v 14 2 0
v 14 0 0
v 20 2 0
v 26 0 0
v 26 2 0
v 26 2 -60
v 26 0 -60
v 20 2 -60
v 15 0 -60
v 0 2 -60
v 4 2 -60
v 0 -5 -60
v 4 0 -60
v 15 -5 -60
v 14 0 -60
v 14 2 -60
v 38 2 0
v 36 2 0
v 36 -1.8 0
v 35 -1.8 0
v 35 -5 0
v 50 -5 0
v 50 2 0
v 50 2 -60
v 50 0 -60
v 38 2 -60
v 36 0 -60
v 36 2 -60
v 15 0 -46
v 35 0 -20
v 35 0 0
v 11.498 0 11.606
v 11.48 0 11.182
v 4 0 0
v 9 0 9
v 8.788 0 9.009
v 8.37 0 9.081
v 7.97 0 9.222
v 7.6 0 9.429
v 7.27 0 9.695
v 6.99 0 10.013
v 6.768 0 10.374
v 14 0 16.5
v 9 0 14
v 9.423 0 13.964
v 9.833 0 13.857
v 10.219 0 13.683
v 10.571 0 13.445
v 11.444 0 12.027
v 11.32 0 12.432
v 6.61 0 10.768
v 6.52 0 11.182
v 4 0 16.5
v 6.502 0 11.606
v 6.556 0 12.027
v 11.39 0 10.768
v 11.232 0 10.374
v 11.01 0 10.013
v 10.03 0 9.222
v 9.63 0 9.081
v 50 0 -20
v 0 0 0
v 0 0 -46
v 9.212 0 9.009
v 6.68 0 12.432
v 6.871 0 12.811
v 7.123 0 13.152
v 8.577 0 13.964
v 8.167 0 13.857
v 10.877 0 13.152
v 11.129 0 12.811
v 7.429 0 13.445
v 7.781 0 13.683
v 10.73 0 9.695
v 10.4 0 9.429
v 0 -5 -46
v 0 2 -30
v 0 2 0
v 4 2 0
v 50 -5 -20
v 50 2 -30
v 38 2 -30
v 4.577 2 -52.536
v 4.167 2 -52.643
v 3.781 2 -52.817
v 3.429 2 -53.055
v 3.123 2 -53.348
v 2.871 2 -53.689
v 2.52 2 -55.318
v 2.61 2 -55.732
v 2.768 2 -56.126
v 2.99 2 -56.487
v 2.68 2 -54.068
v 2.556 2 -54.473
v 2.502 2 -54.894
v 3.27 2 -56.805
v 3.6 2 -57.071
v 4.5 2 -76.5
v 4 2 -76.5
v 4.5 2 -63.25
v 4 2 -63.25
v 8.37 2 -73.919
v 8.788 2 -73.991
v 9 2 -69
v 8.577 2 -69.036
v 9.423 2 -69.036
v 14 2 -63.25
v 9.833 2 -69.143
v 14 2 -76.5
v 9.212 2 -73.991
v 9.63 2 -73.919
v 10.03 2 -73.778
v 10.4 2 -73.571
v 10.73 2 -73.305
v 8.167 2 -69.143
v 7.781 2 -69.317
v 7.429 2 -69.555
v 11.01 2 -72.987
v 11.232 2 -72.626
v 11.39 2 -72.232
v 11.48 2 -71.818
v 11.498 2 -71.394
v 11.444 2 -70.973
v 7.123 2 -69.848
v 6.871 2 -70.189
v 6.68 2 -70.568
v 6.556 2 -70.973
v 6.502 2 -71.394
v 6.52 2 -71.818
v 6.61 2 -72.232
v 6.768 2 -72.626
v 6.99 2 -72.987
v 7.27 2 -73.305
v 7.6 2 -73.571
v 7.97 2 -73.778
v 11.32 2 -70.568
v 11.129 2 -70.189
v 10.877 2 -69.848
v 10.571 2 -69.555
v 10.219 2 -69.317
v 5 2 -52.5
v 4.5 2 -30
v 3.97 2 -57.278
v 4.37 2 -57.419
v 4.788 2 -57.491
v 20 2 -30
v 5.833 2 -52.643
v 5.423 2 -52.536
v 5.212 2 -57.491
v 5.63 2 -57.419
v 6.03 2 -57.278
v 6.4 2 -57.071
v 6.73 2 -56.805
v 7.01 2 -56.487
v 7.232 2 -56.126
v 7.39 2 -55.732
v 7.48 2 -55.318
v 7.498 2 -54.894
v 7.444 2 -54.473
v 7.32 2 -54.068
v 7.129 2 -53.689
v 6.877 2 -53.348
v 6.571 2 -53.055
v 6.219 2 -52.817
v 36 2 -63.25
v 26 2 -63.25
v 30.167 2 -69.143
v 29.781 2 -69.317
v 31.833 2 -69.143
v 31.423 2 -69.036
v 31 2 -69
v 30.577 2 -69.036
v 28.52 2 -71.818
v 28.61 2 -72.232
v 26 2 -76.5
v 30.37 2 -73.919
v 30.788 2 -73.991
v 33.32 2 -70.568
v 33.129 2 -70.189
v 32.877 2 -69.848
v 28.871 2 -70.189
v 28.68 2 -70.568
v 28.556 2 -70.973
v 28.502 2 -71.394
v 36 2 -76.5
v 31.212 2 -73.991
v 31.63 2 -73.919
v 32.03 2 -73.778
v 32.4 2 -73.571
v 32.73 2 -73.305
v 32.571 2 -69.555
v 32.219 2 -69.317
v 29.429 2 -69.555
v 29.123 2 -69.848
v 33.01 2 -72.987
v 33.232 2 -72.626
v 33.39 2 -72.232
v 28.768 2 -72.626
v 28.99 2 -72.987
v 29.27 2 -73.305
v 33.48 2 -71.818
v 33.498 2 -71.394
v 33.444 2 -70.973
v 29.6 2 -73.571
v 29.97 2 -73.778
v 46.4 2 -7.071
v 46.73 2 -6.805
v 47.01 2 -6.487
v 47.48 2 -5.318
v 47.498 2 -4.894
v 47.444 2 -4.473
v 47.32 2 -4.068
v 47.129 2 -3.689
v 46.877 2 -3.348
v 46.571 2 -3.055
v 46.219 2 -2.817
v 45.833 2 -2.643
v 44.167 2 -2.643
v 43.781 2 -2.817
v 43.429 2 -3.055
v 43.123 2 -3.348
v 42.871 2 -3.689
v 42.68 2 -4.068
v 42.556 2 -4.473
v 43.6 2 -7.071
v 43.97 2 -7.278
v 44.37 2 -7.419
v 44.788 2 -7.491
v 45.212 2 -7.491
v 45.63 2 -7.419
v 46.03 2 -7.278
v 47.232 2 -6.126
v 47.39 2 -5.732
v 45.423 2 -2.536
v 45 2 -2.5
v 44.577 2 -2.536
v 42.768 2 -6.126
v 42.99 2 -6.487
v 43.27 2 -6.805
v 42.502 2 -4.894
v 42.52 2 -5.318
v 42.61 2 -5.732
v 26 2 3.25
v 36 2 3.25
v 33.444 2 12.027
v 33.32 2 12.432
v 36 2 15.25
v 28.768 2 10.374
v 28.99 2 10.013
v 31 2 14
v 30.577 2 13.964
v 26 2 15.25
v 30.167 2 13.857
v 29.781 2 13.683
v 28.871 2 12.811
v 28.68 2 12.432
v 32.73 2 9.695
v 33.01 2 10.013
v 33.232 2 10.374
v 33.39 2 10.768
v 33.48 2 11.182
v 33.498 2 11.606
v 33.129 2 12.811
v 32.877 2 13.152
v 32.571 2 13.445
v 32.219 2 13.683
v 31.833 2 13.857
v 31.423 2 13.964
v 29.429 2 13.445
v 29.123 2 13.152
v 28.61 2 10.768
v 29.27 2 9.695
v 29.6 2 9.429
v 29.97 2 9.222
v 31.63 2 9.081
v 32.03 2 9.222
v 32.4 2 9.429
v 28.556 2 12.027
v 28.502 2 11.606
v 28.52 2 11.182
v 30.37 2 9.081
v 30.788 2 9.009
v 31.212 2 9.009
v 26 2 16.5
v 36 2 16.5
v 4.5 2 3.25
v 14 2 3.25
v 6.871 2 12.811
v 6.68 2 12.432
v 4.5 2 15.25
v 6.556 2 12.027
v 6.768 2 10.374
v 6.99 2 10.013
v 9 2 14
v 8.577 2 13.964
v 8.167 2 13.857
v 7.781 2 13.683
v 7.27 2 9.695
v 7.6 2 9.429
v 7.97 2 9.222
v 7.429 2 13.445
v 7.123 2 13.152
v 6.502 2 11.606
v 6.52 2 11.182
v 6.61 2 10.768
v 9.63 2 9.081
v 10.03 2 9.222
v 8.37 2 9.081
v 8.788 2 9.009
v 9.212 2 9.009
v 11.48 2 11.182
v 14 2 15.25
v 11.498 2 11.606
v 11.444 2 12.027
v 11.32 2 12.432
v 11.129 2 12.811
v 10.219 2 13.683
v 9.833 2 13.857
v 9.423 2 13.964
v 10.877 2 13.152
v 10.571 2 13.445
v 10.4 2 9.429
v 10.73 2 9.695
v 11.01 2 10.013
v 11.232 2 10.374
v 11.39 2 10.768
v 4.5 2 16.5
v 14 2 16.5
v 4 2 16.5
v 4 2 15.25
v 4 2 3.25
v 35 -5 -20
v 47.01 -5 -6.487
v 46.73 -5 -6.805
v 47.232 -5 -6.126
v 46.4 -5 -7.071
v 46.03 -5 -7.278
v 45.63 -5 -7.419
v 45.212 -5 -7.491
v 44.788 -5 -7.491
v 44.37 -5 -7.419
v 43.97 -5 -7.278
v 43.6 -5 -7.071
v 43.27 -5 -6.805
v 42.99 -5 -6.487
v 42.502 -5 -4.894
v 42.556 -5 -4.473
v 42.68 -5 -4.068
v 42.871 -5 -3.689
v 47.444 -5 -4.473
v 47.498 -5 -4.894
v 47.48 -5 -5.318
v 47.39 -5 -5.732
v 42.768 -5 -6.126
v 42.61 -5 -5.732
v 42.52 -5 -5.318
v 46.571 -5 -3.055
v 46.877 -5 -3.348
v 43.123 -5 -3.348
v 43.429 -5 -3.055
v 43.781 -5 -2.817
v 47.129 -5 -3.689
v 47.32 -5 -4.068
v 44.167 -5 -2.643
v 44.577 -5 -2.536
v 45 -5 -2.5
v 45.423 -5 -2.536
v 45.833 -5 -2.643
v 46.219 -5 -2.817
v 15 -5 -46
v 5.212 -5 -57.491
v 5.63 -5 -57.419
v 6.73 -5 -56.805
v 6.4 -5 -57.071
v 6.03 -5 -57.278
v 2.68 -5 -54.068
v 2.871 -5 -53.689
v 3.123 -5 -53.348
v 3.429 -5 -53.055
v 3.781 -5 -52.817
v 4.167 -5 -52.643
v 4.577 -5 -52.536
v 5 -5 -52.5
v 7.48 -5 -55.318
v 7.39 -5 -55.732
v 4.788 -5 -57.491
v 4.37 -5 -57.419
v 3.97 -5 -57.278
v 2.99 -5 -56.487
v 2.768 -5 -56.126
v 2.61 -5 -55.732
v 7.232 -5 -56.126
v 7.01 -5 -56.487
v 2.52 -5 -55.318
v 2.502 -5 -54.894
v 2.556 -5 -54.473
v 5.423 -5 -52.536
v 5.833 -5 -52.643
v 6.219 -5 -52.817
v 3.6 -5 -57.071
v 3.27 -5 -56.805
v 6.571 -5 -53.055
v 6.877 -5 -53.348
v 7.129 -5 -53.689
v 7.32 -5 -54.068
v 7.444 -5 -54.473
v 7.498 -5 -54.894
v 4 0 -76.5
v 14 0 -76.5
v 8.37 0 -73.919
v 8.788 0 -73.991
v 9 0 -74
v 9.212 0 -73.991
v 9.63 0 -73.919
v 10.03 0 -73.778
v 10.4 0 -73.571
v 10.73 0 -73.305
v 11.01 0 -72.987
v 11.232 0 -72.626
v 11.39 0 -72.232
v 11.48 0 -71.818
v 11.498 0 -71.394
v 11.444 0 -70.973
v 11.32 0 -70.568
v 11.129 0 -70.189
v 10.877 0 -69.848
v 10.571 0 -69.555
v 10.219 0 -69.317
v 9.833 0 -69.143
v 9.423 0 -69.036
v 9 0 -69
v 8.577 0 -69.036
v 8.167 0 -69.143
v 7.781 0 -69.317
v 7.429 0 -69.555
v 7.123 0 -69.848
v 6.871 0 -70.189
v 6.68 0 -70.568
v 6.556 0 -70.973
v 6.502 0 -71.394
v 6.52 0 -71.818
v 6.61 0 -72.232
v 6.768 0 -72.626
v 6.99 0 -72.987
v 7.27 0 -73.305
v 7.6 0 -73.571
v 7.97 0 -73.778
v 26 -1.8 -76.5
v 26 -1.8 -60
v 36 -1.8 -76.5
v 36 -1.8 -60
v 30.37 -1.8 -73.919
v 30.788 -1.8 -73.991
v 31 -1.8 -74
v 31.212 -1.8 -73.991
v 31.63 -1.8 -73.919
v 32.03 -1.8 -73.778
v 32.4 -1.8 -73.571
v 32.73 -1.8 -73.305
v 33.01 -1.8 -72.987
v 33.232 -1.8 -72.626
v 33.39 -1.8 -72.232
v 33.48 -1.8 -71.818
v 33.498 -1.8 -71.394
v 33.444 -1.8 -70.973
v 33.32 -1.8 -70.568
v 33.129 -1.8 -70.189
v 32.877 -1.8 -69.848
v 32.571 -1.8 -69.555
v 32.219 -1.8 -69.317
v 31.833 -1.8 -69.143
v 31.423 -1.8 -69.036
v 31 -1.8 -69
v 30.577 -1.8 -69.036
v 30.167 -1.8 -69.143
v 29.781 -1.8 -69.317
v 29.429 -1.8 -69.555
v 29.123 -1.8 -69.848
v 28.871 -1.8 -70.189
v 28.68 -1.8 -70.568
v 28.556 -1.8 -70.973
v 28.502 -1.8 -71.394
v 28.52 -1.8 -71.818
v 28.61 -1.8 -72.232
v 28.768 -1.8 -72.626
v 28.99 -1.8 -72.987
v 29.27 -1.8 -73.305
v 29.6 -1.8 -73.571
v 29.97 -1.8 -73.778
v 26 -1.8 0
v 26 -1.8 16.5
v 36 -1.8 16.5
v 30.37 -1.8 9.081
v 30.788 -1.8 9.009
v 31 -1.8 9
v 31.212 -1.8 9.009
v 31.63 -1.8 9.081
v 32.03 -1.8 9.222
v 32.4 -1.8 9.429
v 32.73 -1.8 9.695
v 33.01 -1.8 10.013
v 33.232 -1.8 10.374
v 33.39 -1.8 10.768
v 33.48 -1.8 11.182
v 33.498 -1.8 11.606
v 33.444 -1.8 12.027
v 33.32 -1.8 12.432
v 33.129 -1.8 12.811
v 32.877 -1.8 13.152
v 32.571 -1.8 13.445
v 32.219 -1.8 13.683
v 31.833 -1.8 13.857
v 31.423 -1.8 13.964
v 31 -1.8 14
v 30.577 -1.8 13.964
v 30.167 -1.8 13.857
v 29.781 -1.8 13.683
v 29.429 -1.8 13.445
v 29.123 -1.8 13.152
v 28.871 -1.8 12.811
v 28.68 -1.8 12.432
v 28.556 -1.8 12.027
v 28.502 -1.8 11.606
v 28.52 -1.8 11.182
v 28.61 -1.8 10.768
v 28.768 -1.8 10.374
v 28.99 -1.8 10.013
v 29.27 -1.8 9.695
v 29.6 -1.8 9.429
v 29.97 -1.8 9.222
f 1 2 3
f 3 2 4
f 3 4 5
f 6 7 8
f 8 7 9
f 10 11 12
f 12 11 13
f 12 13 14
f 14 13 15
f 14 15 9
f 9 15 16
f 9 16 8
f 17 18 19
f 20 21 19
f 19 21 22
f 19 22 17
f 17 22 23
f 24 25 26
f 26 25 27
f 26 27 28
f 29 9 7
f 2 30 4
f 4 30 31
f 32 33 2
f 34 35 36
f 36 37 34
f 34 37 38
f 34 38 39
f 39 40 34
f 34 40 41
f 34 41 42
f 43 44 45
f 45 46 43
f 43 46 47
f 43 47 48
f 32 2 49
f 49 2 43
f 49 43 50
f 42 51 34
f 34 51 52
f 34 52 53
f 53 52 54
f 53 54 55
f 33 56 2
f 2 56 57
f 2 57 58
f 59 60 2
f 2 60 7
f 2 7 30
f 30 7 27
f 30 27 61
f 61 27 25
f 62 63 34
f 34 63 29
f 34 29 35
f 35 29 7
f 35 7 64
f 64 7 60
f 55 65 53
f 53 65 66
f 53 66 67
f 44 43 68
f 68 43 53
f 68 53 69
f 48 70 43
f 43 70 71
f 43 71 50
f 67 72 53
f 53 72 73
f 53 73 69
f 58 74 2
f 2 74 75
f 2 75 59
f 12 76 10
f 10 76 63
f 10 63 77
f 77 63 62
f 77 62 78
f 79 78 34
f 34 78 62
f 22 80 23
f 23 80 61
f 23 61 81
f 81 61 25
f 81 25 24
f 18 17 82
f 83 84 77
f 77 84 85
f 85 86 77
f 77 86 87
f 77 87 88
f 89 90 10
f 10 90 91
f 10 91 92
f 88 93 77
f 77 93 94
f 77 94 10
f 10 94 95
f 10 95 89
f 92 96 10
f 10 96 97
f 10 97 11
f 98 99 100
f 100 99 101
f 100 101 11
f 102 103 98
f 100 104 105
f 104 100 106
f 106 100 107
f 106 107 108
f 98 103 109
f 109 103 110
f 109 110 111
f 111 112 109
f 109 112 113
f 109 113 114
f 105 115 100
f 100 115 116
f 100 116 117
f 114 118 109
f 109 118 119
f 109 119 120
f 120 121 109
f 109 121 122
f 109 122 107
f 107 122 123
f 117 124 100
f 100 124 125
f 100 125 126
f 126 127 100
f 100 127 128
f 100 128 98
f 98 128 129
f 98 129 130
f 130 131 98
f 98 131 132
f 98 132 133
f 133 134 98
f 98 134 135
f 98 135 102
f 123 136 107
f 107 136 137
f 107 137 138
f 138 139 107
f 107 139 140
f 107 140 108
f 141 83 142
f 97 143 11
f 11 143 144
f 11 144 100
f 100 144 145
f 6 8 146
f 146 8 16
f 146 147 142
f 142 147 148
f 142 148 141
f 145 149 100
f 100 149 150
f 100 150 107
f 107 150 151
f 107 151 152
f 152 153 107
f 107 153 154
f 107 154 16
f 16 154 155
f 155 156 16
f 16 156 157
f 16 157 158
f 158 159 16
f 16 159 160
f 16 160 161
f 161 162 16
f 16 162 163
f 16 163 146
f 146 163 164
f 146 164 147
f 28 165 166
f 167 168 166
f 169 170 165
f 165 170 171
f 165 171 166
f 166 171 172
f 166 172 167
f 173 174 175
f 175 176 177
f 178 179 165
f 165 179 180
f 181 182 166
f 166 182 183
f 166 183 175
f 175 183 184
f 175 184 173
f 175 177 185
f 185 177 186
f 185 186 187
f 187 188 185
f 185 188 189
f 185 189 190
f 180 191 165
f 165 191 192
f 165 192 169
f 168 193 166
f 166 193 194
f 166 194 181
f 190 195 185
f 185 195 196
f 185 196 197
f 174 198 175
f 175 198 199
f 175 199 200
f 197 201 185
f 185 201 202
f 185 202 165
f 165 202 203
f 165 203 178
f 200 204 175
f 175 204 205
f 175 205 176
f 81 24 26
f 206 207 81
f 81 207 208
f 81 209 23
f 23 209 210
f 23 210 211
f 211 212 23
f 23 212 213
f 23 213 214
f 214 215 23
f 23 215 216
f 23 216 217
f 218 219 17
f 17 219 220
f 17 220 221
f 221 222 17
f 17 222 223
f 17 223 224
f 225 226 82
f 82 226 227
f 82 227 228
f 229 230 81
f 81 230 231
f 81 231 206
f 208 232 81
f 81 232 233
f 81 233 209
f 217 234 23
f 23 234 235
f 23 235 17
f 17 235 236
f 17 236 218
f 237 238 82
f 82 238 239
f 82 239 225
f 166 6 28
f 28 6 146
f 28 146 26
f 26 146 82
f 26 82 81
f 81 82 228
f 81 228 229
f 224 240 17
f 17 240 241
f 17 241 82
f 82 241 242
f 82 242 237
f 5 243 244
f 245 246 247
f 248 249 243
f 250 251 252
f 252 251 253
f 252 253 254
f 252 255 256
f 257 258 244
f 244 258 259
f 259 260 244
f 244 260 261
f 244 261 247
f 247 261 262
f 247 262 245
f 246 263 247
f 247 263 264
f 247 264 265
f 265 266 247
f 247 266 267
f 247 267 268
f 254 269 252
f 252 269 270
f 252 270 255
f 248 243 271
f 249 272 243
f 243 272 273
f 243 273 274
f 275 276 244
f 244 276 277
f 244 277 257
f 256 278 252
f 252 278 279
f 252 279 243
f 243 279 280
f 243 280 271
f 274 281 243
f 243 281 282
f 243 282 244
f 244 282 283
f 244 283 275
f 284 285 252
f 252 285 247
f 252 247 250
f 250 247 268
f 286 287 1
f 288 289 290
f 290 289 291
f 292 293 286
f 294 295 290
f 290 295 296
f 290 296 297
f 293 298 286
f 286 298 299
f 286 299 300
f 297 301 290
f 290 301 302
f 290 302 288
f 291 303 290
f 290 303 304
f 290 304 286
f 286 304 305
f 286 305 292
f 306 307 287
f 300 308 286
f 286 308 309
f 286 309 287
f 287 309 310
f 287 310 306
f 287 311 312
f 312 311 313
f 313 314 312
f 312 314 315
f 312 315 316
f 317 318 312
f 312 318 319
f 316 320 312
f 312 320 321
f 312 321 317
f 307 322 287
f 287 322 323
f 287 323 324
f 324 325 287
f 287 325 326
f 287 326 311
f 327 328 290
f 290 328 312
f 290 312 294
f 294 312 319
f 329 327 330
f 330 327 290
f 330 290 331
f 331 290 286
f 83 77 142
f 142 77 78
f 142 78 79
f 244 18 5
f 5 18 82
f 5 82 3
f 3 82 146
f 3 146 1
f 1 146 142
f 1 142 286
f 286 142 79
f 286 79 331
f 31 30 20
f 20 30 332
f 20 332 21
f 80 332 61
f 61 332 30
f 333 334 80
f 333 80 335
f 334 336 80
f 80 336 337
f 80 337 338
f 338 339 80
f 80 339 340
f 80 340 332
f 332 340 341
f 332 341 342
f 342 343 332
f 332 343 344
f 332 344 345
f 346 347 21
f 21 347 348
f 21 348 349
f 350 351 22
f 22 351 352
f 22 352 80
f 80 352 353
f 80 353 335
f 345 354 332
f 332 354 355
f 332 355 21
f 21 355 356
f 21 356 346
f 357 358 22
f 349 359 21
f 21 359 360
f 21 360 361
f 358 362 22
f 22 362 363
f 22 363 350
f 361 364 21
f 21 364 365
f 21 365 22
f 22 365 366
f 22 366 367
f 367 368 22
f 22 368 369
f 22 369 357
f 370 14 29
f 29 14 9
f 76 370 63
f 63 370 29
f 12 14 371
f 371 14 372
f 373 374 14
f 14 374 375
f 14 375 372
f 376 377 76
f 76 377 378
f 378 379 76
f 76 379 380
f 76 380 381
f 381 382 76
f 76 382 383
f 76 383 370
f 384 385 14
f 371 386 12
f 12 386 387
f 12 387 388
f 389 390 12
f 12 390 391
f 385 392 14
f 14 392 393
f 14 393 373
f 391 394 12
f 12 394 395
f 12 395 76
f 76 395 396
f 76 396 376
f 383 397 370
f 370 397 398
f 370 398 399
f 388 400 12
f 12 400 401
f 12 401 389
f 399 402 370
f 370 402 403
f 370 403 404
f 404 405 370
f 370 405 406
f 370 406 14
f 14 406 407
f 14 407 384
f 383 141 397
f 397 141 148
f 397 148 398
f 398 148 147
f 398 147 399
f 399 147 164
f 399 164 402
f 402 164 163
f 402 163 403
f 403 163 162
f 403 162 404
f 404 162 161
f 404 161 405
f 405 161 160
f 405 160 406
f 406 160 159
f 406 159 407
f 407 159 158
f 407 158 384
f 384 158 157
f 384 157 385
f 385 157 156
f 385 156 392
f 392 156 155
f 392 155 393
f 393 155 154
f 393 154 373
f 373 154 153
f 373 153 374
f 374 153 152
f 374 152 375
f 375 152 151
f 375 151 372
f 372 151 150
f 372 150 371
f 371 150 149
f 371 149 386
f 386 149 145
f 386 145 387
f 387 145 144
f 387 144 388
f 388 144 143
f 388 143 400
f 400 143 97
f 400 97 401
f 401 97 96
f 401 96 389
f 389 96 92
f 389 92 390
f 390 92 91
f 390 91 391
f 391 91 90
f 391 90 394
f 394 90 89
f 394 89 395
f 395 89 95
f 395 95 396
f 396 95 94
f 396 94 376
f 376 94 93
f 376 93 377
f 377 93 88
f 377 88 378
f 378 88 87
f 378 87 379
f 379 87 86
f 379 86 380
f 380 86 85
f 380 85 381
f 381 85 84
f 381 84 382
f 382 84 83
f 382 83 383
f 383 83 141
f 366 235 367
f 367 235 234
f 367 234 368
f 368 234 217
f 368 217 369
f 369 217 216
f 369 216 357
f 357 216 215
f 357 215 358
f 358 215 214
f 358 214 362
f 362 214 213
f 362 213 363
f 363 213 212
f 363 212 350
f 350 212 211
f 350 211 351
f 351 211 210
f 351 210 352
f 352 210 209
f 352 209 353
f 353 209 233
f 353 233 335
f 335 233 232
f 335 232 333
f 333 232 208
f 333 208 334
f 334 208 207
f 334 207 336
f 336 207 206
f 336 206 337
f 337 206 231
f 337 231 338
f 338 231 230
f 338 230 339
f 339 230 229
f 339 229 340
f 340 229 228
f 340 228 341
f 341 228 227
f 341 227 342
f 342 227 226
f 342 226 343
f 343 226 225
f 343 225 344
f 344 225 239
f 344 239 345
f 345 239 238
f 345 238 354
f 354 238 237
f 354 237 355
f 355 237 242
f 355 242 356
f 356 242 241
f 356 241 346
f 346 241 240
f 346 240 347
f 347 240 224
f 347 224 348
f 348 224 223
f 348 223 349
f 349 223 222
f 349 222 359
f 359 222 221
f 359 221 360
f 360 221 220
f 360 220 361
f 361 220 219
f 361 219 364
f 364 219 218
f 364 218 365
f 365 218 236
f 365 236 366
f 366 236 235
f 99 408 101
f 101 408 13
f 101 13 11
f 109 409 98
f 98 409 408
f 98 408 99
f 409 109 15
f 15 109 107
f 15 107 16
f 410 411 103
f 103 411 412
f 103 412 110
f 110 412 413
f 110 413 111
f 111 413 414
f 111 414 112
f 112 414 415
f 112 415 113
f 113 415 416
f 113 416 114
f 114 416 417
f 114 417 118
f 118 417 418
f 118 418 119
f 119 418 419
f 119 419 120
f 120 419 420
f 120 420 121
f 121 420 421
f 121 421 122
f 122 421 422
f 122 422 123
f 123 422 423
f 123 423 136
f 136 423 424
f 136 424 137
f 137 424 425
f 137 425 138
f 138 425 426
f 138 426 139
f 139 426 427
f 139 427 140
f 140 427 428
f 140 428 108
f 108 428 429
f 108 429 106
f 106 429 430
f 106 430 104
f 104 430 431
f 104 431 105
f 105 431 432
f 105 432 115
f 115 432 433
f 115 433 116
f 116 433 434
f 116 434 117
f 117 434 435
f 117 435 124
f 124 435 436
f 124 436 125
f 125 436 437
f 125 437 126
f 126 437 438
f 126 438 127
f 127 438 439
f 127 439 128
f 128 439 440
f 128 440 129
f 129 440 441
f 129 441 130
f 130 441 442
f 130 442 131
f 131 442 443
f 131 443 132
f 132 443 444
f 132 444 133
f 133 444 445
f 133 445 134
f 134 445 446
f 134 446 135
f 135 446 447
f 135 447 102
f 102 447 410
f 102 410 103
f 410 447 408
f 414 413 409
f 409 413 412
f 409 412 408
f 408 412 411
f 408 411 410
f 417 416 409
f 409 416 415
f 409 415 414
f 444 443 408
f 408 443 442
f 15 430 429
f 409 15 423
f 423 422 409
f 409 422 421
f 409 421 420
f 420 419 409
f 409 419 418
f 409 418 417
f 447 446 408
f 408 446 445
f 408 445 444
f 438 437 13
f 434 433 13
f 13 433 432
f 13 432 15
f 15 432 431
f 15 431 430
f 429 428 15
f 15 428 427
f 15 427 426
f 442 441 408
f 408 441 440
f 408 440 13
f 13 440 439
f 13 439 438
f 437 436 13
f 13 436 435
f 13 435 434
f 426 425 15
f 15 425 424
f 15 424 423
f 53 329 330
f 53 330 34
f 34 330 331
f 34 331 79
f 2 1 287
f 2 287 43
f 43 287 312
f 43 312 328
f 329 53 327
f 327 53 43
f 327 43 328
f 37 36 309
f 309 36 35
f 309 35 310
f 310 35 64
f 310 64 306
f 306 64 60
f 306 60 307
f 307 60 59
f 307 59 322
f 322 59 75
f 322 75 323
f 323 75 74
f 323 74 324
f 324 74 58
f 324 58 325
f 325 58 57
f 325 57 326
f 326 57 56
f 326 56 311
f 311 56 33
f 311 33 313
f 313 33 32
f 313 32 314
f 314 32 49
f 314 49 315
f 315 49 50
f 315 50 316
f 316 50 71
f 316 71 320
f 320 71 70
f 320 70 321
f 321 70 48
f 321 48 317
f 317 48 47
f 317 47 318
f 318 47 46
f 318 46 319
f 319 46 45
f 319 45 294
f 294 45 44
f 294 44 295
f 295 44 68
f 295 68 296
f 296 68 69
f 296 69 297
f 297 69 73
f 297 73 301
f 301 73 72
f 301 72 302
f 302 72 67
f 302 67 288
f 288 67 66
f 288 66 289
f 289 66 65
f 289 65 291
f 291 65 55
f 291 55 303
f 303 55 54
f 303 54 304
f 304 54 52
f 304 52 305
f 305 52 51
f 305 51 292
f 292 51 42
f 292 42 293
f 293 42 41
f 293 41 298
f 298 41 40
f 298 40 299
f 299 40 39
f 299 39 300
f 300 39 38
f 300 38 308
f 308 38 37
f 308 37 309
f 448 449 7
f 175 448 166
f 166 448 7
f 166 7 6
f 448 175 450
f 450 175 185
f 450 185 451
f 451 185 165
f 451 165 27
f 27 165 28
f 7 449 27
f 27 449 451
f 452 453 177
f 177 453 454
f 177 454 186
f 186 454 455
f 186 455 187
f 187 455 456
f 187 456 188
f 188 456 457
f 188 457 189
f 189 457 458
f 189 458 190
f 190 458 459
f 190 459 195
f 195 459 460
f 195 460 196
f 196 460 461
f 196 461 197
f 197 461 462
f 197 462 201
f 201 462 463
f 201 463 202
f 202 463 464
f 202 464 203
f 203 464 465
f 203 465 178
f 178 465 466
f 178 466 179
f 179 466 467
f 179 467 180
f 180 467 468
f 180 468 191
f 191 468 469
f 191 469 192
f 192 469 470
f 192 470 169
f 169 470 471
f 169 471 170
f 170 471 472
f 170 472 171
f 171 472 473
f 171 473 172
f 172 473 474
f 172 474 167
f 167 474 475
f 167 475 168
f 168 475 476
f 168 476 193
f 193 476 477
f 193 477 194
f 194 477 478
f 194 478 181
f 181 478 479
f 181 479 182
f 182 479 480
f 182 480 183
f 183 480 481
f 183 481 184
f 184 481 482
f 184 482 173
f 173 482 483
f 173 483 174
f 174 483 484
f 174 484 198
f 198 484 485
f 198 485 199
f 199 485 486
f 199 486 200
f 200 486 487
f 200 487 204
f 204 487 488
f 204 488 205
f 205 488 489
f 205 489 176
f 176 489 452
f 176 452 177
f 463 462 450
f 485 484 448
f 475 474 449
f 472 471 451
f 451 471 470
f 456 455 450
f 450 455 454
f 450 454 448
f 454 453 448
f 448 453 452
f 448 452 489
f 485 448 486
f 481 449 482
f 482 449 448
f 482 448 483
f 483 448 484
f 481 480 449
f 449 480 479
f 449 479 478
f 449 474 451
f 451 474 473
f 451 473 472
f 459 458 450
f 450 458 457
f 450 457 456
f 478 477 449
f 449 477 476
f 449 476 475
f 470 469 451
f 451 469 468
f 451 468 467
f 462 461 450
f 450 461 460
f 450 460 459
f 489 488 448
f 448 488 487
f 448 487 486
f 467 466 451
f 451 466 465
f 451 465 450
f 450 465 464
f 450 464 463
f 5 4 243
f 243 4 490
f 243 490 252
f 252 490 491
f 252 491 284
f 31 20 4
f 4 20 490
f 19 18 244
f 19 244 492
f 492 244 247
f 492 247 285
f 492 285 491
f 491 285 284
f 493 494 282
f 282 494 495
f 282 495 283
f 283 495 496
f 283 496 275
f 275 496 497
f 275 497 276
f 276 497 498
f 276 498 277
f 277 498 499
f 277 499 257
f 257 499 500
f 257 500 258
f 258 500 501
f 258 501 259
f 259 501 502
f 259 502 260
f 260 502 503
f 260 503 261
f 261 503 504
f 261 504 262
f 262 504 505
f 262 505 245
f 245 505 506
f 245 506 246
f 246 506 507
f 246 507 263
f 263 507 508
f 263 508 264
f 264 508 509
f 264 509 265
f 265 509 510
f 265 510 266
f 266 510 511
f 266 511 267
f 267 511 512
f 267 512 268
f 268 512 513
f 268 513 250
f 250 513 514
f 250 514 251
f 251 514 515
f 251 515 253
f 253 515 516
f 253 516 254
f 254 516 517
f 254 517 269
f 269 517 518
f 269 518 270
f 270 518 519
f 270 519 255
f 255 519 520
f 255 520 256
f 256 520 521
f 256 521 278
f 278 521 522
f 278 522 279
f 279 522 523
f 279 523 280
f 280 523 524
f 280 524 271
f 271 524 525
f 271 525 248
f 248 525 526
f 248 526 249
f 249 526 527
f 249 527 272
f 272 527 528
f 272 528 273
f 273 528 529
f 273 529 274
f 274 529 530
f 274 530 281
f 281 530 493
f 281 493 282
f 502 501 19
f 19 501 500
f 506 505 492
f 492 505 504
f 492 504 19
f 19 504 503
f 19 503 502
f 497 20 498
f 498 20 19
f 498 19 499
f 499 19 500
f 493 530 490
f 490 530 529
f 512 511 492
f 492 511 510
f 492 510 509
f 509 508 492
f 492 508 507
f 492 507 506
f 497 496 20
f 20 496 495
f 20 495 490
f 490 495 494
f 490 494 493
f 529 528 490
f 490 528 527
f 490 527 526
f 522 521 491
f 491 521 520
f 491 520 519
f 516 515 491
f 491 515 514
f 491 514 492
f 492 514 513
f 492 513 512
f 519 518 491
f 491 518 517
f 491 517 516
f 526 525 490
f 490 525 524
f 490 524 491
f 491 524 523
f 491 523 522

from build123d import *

# Parameters (mm, degrees)
SKETCH1_W           = 50
SKETCH1_H           = 60
BOSS_EXTRUDE1_DEPTH = 2
SKETCH2_W           = 15
SKETCH2_H           = 20
SKETCH2_H_2         = 14
BOSS_EXTRUDE2_DEPTH = 5
SKETCH3_R           = 2.5
CUT_EXTRUDE1_DEPTH  = 7
SKETCH4_W           = 10
SKETCH4_H           = 16.5
SKETCH4_R           = 2.5
BOSS_EXTRUDE3_DEPTH = 2
SKETCH5_W           = 10
SKETCH5_H           = 16.5
SKETCH5_R           = 2.5
BOSS_EXTRUDE5_DEPTH = 3.8


with BuildPart() as part:
    # Sketch1 → Boss-Extrude1 (new body)
    with BuildSketch(Plane(origin=(0, 0, 0), x_dir=(1, 0, 0), z_dir=(0, 1, 0))):
        with Locations((25, 30)):
            Rectangle(SKETCH1_W, SKETCH1_H)
    extrude(amount=BOSS_EXTRUDE1_DEPTH)

    # Sketch2 → Boss-Extrude2 (add)
    with BuildSketch(Plane.XZ):
        with Locations((42.5, -10)):
            Rectangle(SKETCH2_W, SKETCH2_H)
        with Locations((7.5, -53)):
            Rectangle(SKETCH2_W, SKETCH2_H_2)
    extrude(amount=BOSS_EXTRUDE2_DEPTH)

    # Sketch3 → Cut-Extrude1 (cut)
    with BuildSketch(Plane(origin=(0, 2, 0), x_dir=(1, 0, 0), z_dir=(0, 1, 0))):
        with Locations(Location((45, 5, 0), (0, 0, 270))):
            Circle(SKETCH3_R)
        with Locations(Location((5, 55, 0), (0, 0, 270))):
            Circle(SKETCH3_R)
    extrude(amount=-CUT_EXTRUDE1_DEPTH, mode=Mode.SUBTRACT)

    # Sketch4 → Boss-Extrude3 (add)
    # profile 1 of 2: a face of its own
    with BuildSketch(Plane(origin=(0, 2, 0), x_dir=(1, 0, 0), z_dir=(0, 1, 0))):
        with Locations((9, 68.25)):
            Rectangle(SKETCH4_W, SKETCH4_H)
        with Locations(Location((9, 71.5, 0), (0, 0, 270))):
            Circle(SKETCH4_R, mode=Mode.SUBTRACT)
    # profile 2 of 2: a face of its own
    with BuildSketch(Plane(origin=(0, 2, 0), x_dir=(1, 0, 0), z_dir=(0, 1, 0))):
        with Locations((9, -8.25)):
            Rectangle(SKETCH4_W, SKETCH4_H)
        with Locations(Location((9, -11.5, 0), (0, 0, 270))):
            Circle(SKETCH4_R, mode=Mode.SUBTRACT)
    extrude(amount=-BOSS_EXTRUDE3_DEPTH)

    # Sketch5 → Boss-Extrude5 (add)
    # profile 1 of 2: a face of its own
    with BuildSketch(Plane(origin=(0, 2, 0), x_dir=(1, 0, 0), z_dir=(0, 1, 0))):
        with Locations((31, 68.25)):
            Rectangle(SKETCH5_W, SKETCH5_H)
        with Locations(Location((31, 71.5, 0), (0, 0, 270))):
            Circle(SKETCH5_R, mode=Mode.SUBTRACT)
    # profile 2 of 2: a face of its own
    with BuildSketch(Plane(origin=(0, 2, 0), x_dir=(1, 0, 0), z_dir=(0, 1, 0))):
        with Locations((31, -8.25)):
            Rectangle(SKETCH5_W, SKETCH5_H)
        with Locations(Location((31, -11.5, 0), (0, 0, 270))):
            Circle(SKETCH5_R, mode=Mode.SUBTRACT)
    extrude(amount=-BOSS_EXTRUDE5_DEPTH)


solid = part.part
